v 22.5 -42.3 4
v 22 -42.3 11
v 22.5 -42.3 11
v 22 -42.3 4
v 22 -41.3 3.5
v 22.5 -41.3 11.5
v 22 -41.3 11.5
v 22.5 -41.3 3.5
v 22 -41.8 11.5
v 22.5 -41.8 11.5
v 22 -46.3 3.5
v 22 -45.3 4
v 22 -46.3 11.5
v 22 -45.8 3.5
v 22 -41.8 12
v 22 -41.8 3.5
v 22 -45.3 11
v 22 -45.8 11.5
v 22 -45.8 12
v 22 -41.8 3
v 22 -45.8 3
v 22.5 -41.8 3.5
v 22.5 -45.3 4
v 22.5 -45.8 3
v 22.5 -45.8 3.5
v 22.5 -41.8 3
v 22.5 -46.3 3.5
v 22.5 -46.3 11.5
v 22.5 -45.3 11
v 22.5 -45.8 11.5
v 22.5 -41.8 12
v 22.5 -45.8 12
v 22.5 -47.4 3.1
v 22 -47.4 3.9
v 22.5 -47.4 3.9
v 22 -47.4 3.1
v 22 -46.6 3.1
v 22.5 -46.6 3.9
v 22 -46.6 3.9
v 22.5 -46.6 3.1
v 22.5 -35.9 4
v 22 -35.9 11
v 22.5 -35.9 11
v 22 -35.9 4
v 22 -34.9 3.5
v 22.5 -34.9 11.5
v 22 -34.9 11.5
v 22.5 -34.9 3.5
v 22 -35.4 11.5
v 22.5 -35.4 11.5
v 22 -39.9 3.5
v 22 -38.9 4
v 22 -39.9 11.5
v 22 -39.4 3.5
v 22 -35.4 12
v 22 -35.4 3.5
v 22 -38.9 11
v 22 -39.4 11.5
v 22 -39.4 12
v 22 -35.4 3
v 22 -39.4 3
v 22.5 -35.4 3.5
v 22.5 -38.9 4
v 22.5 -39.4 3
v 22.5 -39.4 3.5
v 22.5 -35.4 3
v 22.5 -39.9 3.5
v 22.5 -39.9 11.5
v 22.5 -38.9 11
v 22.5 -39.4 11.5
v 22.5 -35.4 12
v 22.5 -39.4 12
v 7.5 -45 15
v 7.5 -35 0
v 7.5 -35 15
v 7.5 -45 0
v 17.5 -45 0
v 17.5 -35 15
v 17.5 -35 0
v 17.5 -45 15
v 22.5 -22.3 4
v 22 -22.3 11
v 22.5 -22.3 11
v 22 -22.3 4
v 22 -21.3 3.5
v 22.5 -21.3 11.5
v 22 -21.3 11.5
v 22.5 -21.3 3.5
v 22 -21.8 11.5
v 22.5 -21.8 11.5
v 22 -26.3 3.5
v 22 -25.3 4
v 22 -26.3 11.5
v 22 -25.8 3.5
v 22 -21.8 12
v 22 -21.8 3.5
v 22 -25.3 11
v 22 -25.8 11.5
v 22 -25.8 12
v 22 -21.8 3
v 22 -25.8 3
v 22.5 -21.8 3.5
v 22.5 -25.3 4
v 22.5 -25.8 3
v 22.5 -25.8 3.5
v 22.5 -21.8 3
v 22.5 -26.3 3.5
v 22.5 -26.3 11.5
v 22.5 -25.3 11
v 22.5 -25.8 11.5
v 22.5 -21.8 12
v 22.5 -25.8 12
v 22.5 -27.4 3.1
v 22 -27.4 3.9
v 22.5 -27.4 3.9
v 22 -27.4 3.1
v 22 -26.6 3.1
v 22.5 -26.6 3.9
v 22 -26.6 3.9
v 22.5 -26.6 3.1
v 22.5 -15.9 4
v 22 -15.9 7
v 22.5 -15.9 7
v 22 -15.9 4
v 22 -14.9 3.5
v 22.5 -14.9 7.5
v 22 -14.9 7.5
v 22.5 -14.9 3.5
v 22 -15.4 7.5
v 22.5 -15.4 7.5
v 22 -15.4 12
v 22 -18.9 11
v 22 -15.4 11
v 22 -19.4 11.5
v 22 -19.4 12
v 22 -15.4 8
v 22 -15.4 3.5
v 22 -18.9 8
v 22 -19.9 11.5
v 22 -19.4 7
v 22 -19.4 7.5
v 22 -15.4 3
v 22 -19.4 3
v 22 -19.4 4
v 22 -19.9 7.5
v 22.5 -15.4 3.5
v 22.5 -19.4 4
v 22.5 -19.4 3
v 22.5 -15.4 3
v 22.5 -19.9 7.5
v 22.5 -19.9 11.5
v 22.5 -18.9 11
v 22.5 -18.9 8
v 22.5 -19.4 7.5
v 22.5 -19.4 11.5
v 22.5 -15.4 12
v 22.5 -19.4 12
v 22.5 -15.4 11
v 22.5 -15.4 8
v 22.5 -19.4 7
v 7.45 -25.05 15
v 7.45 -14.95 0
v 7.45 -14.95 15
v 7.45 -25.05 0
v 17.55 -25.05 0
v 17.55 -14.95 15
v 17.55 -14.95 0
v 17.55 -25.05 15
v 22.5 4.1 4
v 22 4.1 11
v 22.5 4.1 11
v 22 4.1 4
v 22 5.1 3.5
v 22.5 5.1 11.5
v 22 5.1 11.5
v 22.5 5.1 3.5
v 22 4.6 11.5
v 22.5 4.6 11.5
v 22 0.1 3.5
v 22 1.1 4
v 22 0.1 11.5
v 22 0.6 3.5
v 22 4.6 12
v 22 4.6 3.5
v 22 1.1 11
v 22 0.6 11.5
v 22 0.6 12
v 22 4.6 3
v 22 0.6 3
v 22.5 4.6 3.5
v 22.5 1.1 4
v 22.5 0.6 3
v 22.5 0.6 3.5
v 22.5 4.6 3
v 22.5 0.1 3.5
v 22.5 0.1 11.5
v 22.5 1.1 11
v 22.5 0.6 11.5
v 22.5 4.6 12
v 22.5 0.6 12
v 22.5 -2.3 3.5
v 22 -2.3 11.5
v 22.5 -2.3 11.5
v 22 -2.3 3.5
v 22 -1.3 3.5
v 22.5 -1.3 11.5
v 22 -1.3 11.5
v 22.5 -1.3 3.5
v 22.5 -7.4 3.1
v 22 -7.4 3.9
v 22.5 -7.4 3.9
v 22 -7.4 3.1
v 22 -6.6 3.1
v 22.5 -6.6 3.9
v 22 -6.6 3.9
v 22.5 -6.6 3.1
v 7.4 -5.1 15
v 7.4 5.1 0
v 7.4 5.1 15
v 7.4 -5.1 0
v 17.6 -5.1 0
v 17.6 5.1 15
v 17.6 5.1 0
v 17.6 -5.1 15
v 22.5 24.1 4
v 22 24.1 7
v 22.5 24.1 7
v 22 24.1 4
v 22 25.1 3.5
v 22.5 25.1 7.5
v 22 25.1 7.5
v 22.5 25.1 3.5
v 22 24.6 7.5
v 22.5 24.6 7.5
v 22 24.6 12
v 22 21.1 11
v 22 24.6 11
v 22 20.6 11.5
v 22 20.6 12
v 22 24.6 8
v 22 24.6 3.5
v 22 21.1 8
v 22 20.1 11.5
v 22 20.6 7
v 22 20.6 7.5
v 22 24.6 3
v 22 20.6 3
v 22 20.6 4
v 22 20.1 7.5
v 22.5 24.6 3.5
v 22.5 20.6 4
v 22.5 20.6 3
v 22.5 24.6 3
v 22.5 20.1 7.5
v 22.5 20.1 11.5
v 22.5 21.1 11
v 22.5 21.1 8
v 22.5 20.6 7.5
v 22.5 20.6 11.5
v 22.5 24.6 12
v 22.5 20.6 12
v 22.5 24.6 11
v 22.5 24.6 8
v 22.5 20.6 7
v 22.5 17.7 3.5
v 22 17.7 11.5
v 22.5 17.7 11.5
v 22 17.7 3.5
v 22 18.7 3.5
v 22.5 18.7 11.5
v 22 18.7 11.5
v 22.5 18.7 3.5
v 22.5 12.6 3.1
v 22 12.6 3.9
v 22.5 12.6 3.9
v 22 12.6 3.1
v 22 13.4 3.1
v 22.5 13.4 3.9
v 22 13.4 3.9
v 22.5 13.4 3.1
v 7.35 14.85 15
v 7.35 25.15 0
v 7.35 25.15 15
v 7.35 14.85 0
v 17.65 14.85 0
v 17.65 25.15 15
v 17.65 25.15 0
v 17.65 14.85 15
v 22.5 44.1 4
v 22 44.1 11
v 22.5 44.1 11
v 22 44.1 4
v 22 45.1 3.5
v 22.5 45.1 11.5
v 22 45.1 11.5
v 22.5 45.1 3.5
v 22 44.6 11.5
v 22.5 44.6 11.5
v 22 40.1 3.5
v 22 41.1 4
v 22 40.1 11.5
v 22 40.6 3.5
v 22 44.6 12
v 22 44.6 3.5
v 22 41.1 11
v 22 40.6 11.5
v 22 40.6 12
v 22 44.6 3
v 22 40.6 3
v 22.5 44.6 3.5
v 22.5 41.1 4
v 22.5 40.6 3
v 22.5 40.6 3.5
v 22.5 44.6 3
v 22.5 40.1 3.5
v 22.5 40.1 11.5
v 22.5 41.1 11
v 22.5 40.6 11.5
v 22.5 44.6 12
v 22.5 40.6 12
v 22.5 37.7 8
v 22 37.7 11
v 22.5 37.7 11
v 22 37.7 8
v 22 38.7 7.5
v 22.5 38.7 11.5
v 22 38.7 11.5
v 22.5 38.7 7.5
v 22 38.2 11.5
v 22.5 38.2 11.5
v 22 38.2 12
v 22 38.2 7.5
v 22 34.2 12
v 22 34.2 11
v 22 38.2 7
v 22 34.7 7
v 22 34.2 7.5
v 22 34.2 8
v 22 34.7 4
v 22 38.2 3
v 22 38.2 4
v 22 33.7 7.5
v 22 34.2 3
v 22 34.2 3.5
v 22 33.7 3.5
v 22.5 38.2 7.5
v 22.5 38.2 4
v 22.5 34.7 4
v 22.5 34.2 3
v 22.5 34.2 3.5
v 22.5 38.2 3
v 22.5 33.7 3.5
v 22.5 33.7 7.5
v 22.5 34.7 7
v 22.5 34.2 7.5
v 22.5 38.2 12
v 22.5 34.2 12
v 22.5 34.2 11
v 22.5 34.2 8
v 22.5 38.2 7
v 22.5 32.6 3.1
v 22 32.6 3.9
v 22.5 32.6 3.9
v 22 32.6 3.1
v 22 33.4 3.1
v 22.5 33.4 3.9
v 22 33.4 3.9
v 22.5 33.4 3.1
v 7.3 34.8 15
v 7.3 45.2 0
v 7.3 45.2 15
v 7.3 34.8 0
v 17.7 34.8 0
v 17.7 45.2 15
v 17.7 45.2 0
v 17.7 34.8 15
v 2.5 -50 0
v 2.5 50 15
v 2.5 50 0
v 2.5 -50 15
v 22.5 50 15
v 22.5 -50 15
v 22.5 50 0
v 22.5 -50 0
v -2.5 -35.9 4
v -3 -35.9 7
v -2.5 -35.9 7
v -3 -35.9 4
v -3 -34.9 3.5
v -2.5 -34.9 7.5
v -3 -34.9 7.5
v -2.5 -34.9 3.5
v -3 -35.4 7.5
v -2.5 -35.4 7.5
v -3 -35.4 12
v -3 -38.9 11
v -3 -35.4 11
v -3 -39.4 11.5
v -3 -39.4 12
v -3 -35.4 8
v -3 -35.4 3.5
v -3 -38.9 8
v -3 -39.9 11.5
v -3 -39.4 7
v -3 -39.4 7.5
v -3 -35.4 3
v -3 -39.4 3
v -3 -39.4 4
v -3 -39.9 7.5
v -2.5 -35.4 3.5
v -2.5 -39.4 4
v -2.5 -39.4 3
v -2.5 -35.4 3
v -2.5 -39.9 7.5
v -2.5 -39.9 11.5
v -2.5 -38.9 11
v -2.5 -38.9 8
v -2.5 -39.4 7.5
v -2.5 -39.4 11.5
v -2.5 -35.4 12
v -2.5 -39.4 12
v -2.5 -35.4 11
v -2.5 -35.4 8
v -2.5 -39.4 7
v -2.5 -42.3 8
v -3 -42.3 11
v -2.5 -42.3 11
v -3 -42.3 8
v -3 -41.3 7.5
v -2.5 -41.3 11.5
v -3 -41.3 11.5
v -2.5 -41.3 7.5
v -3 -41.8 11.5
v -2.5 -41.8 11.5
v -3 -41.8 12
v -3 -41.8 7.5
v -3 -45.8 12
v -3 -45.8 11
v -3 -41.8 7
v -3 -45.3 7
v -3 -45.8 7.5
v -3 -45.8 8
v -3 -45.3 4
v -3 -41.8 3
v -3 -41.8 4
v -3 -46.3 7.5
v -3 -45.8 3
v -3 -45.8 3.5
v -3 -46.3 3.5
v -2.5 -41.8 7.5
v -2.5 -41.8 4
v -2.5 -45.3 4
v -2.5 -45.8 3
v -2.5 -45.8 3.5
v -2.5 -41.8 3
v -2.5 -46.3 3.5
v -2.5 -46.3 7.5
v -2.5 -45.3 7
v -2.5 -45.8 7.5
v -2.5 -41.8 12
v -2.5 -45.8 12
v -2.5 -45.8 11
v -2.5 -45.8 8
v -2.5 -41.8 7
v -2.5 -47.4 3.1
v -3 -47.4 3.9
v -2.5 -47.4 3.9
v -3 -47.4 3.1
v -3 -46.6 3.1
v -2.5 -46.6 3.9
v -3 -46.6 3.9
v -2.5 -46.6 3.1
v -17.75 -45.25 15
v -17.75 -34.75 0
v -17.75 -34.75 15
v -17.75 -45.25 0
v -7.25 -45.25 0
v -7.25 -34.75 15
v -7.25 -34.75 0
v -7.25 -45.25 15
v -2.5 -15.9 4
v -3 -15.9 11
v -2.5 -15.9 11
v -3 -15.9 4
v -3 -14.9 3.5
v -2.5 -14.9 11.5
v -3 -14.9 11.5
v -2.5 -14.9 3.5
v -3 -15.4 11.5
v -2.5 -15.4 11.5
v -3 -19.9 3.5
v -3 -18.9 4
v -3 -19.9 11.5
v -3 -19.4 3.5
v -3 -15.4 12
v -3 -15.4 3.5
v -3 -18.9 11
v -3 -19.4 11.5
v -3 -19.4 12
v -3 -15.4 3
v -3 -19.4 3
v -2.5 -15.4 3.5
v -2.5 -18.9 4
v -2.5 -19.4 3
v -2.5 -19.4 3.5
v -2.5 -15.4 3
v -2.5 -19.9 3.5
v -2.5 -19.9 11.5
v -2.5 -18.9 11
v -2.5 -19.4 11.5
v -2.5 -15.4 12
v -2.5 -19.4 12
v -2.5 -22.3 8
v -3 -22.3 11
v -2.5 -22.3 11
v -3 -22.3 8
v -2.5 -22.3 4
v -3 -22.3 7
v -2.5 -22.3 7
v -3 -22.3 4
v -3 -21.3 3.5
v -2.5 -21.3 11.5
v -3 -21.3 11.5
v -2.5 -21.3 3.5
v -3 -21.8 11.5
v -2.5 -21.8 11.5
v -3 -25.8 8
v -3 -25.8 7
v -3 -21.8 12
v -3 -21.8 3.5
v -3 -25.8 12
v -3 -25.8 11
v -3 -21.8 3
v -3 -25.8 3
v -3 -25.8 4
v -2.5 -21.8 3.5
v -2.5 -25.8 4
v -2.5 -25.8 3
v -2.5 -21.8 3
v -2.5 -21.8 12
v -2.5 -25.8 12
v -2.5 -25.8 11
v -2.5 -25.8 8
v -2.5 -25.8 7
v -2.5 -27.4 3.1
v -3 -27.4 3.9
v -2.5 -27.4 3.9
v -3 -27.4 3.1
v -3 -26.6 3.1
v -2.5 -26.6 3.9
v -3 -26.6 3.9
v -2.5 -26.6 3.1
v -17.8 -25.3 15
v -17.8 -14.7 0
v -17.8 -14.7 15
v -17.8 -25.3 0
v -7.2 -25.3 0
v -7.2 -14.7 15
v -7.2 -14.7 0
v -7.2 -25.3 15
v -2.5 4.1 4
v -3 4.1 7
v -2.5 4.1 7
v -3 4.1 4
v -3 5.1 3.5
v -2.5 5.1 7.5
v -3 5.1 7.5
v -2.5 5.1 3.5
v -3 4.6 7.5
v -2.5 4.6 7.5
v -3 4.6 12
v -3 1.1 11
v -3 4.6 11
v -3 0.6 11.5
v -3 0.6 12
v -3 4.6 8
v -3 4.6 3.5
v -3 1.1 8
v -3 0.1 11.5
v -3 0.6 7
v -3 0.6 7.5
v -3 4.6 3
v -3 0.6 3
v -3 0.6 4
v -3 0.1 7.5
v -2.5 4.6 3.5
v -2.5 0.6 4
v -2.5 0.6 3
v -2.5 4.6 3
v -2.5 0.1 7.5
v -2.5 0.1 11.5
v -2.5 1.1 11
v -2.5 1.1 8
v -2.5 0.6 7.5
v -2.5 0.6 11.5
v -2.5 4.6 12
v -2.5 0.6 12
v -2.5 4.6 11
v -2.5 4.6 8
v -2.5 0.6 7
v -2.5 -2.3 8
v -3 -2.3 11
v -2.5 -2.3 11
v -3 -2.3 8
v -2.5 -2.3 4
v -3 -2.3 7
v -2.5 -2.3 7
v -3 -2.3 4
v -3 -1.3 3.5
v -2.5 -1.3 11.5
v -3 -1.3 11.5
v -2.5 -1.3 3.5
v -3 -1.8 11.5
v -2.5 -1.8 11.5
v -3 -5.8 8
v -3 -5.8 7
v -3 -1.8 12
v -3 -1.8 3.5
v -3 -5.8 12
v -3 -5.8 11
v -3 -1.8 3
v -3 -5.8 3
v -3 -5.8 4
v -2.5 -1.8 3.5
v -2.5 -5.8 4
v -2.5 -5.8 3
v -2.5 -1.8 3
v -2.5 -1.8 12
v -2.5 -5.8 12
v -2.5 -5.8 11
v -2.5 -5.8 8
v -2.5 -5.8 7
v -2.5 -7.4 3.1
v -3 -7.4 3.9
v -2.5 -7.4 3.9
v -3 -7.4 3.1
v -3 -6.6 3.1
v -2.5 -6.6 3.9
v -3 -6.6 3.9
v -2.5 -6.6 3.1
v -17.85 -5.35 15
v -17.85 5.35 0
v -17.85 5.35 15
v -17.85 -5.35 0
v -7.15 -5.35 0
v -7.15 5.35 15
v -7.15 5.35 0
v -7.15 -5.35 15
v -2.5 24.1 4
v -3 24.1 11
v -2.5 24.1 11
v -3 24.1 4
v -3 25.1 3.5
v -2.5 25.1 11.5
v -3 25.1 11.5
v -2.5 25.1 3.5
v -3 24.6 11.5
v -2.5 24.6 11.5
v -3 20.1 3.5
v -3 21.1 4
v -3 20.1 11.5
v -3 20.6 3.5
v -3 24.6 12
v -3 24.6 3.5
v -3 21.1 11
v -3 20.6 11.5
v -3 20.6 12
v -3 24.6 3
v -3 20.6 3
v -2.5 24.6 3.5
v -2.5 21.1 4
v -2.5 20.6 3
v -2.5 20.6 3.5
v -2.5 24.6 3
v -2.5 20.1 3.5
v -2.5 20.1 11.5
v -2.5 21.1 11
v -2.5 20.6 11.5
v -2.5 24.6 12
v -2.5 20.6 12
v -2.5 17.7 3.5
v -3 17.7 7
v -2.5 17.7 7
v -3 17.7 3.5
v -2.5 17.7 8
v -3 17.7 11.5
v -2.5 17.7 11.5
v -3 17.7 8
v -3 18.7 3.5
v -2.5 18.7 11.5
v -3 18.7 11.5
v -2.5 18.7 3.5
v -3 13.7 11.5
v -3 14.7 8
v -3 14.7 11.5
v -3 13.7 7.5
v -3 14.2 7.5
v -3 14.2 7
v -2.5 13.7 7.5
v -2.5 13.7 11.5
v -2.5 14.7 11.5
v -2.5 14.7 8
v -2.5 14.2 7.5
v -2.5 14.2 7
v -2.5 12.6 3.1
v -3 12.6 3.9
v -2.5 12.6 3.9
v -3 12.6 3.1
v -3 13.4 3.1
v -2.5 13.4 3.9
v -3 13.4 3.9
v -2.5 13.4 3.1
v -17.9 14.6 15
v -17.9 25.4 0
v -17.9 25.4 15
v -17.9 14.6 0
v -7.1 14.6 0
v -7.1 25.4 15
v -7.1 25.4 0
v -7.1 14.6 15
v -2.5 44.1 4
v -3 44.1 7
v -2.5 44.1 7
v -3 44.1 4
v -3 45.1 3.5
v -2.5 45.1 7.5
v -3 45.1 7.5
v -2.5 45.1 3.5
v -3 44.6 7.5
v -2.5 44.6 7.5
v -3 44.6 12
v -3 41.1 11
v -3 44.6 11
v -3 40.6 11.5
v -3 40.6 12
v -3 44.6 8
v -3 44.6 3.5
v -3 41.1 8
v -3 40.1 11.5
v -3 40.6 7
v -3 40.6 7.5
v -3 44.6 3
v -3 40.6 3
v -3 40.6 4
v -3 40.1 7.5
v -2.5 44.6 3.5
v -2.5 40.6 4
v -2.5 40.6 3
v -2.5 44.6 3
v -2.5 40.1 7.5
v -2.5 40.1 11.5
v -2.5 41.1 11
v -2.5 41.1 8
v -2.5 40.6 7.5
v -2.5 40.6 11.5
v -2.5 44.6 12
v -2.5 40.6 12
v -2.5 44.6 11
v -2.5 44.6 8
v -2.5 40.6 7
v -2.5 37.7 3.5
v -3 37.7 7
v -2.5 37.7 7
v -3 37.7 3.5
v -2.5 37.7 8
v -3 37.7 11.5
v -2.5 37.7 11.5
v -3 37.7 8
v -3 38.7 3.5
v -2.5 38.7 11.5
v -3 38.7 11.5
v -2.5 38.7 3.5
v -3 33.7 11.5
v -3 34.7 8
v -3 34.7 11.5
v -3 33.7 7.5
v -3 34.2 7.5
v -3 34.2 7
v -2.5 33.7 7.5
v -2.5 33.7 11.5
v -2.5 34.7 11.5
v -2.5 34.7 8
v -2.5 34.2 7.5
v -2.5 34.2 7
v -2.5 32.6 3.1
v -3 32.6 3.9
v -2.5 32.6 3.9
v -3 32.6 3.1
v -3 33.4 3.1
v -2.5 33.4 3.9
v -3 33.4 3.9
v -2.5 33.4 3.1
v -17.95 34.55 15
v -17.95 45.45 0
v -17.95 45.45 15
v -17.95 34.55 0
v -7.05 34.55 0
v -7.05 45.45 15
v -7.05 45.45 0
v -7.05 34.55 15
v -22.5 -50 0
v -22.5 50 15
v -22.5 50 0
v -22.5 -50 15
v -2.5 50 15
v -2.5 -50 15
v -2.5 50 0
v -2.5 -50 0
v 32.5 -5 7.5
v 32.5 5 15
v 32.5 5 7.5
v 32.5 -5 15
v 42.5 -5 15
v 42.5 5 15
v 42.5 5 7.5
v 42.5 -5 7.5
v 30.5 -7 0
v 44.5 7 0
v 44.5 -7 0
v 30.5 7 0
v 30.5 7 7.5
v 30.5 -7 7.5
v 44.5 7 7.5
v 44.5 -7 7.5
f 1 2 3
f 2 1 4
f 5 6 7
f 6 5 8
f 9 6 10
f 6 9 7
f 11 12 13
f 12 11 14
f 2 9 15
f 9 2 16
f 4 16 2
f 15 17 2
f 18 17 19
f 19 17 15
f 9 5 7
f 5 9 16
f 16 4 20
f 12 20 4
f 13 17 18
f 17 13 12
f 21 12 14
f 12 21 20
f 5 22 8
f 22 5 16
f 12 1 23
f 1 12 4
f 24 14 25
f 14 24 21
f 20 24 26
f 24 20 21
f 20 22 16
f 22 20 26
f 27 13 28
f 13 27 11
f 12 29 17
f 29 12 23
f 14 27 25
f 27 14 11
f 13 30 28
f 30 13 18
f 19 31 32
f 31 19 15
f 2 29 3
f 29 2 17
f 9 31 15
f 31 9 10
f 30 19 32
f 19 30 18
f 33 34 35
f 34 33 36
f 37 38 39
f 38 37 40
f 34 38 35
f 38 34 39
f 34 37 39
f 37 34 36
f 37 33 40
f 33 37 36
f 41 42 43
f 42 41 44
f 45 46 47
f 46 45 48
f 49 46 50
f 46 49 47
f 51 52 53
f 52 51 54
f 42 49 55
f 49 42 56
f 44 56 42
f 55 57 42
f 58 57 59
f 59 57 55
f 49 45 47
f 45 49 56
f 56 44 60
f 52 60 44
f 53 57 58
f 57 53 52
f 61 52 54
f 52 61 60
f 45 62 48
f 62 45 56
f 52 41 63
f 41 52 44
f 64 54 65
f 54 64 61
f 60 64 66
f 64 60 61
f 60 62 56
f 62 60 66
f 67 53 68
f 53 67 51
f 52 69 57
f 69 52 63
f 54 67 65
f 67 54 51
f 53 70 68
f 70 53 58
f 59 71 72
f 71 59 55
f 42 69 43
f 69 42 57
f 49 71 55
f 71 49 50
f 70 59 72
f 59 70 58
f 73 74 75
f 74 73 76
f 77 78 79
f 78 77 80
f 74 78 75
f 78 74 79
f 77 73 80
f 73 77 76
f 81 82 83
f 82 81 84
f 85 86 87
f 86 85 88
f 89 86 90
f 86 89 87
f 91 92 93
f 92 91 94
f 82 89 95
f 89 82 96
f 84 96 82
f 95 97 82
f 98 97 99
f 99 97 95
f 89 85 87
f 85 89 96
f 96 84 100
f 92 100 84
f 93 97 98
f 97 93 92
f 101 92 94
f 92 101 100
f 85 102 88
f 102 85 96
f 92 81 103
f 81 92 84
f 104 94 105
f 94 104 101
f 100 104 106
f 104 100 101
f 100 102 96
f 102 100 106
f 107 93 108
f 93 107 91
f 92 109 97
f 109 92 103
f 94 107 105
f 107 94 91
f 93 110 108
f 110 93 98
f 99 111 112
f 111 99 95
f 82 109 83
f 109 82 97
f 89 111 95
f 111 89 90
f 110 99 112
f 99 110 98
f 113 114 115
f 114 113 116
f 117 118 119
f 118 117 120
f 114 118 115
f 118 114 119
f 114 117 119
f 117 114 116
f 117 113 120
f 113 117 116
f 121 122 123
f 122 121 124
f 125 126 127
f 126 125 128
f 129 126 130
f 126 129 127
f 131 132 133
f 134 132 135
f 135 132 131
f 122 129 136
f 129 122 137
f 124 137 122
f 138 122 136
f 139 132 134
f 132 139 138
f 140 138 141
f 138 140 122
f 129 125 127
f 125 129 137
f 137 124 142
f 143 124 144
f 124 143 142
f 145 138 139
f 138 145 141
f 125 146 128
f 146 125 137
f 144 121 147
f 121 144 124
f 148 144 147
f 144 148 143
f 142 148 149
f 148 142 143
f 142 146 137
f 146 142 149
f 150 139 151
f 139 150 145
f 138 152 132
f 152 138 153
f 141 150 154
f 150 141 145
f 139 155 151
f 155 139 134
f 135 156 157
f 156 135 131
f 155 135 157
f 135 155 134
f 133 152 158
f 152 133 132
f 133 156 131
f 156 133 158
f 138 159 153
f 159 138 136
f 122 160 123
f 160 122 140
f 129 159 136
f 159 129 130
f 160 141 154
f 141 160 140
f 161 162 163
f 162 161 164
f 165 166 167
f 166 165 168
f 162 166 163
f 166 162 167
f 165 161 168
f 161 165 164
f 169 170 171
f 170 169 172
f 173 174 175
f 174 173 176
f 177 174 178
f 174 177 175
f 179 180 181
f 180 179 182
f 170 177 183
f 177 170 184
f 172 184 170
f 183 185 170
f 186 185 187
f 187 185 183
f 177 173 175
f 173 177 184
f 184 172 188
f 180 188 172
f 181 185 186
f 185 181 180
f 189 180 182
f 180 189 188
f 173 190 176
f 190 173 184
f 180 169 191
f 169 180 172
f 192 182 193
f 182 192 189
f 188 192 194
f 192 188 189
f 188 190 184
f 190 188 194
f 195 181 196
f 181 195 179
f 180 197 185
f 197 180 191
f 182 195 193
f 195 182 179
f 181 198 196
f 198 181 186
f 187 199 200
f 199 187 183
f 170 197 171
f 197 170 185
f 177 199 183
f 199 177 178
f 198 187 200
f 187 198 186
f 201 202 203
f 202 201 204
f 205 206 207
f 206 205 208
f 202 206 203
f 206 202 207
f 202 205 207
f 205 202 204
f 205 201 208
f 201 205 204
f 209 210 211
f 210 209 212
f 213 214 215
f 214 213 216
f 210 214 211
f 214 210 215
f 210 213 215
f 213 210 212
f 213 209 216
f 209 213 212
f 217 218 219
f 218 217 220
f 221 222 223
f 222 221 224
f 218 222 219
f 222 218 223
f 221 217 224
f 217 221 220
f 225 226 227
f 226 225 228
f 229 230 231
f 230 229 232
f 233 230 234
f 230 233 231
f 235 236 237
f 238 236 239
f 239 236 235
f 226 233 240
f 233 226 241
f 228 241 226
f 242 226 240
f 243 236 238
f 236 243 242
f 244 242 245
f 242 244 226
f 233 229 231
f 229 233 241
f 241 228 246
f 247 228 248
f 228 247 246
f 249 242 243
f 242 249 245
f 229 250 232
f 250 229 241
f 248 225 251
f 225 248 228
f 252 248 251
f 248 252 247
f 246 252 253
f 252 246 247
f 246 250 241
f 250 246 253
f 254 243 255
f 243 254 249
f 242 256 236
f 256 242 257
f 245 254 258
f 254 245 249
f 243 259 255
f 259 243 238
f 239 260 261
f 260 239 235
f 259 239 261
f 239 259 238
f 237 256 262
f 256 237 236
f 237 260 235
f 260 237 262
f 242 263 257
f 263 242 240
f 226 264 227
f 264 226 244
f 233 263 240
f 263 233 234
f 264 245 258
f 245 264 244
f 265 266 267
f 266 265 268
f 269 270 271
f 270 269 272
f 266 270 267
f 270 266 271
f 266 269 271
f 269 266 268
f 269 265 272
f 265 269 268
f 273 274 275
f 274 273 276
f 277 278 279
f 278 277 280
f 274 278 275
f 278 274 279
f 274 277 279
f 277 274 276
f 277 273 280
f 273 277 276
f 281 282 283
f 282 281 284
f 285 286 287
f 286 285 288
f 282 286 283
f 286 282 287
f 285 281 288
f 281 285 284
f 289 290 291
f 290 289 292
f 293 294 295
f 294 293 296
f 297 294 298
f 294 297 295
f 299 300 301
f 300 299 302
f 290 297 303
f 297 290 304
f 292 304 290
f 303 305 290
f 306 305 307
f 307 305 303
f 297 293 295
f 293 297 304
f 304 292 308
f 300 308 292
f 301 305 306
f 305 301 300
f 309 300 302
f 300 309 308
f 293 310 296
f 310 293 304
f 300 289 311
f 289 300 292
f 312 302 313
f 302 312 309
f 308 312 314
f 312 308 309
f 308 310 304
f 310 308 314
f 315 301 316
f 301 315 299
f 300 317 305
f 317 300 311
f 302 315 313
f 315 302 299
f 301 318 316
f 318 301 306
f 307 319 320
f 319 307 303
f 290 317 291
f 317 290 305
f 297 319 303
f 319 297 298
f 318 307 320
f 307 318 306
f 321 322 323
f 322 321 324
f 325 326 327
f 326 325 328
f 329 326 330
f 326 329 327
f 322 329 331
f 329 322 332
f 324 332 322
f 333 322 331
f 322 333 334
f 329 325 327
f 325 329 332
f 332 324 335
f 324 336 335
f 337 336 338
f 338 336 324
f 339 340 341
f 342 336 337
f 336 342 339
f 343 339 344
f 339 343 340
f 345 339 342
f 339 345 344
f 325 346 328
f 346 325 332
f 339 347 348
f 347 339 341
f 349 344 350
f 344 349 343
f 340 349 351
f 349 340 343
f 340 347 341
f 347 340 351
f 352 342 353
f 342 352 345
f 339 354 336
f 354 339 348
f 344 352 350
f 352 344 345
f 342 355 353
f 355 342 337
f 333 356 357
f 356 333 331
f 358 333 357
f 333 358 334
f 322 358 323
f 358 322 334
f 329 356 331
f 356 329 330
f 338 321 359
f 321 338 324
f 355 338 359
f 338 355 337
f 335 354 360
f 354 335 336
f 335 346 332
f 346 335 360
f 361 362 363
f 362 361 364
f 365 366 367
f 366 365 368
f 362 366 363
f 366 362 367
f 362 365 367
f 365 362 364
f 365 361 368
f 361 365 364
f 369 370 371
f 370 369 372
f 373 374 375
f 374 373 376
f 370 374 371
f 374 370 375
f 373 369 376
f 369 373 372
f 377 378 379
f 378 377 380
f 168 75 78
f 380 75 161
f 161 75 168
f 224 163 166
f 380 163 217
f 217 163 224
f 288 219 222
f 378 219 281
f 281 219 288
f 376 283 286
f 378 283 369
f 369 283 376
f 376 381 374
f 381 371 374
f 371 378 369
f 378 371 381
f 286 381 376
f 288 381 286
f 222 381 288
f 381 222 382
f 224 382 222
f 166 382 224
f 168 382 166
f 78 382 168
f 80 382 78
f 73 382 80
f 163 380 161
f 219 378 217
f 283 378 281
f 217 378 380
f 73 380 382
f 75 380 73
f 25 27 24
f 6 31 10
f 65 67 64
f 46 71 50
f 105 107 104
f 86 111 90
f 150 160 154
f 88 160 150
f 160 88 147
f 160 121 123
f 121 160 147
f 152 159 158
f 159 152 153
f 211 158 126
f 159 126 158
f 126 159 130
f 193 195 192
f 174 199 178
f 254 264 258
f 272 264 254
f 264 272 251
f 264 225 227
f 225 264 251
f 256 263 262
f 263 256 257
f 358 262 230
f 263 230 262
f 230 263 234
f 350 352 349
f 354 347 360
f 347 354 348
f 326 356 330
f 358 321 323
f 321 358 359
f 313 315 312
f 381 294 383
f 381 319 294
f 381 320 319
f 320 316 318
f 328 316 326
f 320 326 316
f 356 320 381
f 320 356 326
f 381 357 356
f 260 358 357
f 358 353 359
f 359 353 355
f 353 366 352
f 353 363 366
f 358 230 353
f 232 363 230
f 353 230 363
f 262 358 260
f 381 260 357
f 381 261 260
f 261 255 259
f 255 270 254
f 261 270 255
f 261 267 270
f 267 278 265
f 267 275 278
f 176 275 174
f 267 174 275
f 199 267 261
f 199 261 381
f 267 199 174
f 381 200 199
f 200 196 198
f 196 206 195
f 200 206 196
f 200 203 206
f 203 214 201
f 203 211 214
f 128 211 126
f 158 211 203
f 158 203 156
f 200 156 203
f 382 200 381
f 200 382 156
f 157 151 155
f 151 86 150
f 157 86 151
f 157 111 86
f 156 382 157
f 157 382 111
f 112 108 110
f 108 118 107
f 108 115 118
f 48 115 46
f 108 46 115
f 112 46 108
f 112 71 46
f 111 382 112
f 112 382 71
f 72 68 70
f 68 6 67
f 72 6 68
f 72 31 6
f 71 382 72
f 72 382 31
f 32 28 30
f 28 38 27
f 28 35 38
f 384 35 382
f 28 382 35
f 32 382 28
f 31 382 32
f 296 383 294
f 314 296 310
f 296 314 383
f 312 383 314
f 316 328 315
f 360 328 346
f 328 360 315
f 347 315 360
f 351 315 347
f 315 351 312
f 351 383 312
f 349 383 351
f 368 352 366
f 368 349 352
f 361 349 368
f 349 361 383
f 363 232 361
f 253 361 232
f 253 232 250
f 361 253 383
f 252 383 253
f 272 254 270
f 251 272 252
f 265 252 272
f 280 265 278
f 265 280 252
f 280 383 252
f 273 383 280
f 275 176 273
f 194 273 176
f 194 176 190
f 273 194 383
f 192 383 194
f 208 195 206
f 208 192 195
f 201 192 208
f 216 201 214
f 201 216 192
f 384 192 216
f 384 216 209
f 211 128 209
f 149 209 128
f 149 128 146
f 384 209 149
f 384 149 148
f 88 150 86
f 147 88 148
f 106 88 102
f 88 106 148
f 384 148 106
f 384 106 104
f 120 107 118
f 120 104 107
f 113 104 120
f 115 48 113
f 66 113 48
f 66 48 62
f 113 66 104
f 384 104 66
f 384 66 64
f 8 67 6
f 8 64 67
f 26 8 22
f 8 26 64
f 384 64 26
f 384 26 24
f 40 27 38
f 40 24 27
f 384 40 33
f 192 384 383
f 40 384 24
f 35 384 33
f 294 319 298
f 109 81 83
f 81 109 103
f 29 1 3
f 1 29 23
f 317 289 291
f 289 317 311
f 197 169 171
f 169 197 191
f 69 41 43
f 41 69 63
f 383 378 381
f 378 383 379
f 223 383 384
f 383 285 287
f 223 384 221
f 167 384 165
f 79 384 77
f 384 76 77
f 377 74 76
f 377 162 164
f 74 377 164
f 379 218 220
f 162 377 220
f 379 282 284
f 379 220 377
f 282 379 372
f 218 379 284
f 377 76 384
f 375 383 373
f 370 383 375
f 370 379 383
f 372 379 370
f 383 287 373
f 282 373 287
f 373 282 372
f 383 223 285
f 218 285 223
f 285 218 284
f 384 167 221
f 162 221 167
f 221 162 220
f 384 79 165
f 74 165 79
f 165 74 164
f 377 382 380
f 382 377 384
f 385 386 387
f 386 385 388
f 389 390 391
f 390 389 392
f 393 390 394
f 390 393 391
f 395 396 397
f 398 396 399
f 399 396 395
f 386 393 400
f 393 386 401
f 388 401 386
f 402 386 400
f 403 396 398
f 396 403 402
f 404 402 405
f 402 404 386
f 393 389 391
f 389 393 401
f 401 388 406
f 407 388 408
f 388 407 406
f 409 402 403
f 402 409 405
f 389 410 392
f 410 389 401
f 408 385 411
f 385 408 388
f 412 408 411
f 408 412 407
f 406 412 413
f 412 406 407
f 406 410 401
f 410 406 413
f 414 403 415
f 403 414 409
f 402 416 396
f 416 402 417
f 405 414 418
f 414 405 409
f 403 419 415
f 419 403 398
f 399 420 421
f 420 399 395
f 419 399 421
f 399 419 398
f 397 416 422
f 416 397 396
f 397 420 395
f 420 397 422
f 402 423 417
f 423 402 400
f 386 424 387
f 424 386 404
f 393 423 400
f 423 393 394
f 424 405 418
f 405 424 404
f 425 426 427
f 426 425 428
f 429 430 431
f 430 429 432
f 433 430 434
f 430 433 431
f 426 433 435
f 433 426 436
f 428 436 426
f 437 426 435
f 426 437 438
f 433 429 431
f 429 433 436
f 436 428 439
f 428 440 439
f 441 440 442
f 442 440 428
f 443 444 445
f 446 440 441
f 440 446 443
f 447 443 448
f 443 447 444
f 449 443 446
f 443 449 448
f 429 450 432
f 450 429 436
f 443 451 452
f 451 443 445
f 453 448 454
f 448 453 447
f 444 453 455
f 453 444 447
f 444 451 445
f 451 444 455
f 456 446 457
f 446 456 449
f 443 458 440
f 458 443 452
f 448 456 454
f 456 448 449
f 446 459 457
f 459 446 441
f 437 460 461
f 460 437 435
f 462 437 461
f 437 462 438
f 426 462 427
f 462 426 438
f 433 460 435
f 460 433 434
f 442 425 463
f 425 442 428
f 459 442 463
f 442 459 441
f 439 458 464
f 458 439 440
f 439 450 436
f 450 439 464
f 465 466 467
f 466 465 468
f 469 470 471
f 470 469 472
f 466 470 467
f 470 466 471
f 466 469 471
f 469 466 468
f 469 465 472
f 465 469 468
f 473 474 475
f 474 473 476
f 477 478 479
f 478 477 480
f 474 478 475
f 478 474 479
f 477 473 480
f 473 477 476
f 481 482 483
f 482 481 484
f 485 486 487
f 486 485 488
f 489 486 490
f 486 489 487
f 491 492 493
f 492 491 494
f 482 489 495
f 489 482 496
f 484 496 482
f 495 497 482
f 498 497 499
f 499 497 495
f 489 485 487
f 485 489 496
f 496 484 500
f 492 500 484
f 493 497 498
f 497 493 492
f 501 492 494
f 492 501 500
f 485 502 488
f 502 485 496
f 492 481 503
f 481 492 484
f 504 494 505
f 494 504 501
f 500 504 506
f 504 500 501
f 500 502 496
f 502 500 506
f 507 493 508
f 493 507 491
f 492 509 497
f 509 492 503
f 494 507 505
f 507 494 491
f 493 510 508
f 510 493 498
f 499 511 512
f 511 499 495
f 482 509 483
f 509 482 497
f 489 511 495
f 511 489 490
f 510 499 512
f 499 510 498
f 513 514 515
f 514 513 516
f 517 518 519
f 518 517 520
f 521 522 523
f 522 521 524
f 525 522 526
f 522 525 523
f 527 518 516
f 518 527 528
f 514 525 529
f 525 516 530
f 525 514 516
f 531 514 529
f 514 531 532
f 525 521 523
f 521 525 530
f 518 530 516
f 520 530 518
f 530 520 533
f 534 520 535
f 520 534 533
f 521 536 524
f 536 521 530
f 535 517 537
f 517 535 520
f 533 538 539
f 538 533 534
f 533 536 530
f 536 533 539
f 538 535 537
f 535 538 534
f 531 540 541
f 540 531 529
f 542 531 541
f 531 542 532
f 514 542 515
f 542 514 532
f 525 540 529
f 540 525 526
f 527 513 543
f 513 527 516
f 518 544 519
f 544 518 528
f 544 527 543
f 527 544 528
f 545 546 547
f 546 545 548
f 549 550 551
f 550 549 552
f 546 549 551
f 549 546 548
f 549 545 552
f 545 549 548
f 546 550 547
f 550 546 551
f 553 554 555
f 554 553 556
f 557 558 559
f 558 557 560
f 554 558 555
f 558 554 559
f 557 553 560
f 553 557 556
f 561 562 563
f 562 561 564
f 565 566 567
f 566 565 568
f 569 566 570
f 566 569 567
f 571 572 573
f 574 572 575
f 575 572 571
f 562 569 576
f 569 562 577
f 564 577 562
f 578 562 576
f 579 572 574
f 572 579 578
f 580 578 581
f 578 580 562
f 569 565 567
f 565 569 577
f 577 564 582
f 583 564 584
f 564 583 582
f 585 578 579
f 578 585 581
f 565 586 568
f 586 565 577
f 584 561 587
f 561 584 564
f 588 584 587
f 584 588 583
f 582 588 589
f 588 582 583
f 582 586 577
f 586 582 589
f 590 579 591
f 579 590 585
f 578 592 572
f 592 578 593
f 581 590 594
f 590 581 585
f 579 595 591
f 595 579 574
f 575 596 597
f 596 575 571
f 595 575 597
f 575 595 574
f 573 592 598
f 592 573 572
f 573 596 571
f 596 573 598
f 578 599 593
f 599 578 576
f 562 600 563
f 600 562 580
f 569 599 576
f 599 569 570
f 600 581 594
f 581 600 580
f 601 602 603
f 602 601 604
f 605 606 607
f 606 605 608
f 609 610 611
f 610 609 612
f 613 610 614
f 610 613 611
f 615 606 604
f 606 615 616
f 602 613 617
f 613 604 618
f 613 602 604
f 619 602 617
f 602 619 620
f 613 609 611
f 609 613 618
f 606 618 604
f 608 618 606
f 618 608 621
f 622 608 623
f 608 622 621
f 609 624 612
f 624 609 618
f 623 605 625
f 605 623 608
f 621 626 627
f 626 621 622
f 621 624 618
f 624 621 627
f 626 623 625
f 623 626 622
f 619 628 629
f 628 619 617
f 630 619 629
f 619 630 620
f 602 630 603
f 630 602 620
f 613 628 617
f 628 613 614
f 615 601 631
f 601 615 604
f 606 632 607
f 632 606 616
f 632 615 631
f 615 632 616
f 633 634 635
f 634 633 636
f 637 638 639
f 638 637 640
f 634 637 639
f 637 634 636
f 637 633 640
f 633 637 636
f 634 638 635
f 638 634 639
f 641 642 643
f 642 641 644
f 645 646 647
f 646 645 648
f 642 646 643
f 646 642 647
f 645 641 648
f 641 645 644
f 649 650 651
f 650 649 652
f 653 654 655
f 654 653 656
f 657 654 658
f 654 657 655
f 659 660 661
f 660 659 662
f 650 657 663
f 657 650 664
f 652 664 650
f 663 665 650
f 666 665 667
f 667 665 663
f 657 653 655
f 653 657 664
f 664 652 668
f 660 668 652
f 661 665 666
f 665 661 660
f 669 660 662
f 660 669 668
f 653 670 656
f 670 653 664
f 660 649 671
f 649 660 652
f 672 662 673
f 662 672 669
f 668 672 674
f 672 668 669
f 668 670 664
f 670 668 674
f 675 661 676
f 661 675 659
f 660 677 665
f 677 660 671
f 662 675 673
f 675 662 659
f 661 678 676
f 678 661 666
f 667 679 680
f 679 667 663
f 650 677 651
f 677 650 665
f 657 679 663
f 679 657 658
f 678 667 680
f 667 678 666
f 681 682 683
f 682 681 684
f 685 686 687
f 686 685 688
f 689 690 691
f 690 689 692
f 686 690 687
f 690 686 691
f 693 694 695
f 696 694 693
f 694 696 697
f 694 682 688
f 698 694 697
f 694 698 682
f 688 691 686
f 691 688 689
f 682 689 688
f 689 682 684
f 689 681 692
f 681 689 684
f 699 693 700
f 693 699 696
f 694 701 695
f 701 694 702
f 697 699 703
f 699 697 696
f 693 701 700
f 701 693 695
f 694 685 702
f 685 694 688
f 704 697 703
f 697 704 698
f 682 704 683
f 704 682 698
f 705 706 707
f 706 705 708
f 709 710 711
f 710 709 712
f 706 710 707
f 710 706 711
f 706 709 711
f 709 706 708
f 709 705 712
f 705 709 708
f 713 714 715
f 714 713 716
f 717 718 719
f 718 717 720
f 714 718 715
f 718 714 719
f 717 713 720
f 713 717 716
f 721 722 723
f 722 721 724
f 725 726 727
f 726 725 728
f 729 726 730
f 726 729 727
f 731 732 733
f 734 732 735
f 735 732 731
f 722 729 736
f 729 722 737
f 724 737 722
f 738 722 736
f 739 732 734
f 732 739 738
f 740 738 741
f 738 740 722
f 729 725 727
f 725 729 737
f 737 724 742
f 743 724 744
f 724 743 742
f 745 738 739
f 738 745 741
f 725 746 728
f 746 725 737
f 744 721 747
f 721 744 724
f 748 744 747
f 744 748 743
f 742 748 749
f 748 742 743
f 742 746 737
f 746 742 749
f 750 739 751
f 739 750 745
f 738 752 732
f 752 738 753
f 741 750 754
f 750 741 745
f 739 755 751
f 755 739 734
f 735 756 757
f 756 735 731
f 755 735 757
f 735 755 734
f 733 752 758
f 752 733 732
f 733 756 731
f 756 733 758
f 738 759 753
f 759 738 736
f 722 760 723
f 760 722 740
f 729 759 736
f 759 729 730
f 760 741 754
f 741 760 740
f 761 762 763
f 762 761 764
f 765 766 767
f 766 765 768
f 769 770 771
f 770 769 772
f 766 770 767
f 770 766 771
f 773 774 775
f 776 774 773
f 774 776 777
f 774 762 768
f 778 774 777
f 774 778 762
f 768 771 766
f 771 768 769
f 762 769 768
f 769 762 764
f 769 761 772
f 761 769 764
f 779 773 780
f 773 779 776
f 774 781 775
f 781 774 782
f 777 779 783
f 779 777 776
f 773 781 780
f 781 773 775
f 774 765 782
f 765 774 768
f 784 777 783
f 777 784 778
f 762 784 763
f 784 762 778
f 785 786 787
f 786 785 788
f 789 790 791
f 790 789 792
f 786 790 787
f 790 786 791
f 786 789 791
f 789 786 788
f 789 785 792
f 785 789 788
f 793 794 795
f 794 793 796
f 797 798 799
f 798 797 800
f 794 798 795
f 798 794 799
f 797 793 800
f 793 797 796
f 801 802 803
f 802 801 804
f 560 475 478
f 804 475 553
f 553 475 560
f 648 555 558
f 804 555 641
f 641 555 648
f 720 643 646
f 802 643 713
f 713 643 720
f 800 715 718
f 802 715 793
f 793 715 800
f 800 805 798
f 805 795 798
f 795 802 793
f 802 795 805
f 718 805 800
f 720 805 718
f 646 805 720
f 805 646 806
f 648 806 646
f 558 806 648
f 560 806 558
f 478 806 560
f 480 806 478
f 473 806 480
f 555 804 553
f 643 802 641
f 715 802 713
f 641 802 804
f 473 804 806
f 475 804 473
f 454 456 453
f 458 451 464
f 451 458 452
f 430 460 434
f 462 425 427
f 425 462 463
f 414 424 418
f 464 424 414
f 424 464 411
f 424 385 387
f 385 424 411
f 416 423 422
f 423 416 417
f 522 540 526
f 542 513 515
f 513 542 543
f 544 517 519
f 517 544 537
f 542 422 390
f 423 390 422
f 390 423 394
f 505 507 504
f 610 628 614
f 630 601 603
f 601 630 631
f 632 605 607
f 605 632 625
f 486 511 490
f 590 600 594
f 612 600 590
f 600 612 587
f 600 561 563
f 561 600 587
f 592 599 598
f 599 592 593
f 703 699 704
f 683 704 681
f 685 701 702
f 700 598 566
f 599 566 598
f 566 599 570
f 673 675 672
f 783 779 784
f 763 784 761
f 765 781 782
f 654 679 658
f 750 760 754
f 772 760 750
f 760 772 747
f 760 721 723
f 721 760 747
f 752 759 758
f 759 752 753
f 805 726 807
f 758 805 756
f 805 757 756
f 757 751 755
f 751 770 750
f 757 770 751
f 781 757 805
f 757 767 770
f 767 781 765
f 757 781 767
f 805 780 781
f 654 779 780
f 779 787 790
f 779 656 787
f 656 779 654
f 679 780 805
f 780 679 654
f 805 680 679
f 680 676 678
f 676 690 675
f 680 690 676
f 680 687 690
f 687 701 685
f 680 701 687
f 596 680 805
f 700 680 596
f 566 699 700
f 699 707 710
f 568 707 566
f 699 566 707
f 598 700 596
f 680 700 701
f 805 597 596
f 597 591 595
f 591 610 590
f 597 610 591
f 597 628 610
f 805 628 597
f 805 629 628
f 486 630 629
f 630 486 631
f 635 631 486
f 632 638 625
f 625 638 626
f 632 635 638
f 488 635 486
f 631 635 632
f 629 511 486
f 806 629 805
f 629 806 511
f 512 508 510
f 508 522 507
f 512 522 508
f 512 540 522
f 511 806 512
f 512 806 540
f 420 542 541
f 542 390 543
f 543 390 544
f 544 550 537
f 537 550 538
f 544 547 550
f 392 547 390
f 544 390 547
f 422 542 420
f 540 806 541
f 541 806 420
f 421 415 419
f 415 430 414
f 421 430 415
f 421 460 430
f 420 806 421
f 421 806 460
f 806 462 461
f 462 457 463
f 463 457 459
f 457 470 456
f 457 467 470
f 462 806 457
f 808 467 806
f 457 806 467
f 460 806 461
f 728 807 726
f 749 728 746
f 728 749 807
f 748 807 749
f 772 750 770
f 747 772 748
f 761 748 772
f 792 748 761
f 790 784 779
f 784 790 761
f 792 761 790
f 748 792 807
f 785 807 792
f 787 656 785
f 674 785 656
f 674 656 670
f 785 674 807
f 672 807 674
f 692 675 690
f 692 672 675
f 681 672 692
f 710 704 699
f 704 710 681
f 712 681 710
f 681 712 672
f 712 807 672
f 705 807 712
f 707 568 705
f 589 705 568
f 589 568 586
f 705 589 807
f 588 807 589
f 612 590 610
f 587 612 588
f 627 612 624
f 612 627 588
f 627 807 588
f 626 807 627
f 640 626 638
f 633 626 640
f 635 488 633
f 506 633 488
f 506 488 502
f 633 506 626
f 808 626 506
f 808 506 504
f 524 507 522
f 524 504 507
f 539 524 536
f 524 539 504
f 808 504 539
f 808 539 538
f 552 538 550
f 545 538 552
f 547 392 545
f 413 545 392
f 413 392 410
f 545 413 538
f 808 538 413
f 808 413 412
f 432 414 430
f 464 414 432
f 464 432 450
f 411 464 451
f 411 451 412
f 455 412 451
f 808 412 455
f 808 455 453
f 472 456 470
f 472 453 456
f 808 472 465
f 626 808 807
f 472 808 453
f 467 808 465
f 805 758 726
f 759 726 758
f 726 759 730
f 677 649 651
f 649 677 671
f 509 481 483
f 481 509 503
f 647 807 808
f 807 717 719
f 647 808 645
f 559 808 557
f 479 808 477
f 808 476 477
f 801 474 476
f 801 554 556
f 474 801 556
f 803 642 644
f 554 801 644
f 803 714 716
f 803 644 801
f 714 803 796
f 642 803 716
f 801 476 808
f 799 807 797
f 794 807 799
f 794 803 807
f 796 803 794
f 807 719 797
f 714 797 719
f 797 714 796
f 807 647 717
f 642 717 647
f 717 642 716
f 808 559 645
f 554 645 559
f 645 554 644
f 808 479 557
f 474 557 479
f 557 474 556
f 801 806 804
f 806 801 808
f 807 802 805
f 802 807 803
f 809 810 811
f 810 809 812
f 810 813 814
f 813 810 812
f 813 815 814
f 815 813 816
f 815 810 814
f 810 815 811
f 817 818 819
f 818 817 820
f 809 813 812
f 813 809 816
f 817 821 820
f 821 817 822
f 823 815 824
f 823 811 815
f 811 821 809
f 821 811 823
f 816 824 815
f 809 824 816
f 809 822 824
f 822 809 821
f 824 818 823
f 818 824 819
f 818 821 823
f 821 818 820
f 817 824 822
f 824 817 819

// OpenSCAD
use <GDMUtils.scad>



module digit_seven_segment(digit=0, size=10, h=1)
{
	segs = [
		[1, 1, 1, 1, 1, 0, 0, 1, 1, 1],
		[1, 1, 0, 1, 1, 1, 1, 1, 1, 1],
		[1, 0, 1, 1, 0, 1, 1, 0, 1, 1],
		[1, 0, 1, 0, 0, 0, 1, 0, 1, 0],
		[1, 0, 0, 0, 1, 1, 1, 0, 1, 1],
		[1, 0, 1, 1, 0, 1, 1, 1, 1, 1],
		[0, 0, 1, 1, 1, 1, 1, 0, 1, 1]
	];
	rots = [0, 0, 90, 0, 0, 90, 90];
	offs = [[0.5, 0.5], [0.5, -0.5], [0.0, -1.0], [-0.5, -0.5], [-0.5, 0.5], [0.0, 1.0], [0.0, 0.0]];
	for (i = [0:6]) {
		if (segs[i][digit] != 0) {
			scale([size/2, size/2, h]) {
				translate([offs[i][0], offs[i][1], 0]) {
					rotate([0, 0, rots[i]]) {
						cube(size=[0.25, 1.0, 1.0], center=true);
					}
				}
			}
		}
	}
}



module float_seven_segment(val=0.0, decim=2, size=10, h=1, suppress=false)
{
	mag = max(floor(log(abs(val))), suppress?-1:0);
	if (val < 0.0) {
		translate([-0.8*size*(mag+1.5), 0, 0]) {
			cube(size=[size/2, size*0.1, h], center=true);
		}
	}
	for (p = [mag:-1:-decim]) {
		translate([-0.8*size*(p+0.5), 0, 0]) {
			assign(d = floor(abs(val)/pow(10, p)+0.000001) % 10) {
				if (p == -1) {
					translate([-0.8*size/2, -size/2, 0])
						cube(size=[size*0.1, size*0.1, h], center=true);
				}
				digit_seven_segment(digit=d, size=size, h=h);
			}
		}
	}
}




module slop_calibrator_parts() { // make me
	rows = 5;
	cols = 2;
	r = 5;
	h = 15;
	step = 0.05;
	spacing = r*2+10;
	for (col = [0:cols-1]) {
		translate([-col*spacing*1.25+(cols-1)*spacing*1.25/2, 0, h/2]) {
			difference() {
				cube(size=[spacing, rows*spacing, h], center=true);
				for (row = [0:rows-1]) {
					assign(slop = (step*rows*col)+step*row) {
						translate([0, spacing*row-(rows-1)*spacing/2, 0]) {
							cube(size=[(r+slop)*2, (r+slop)*2, h+1], center=true);
							translate([spacing/2, -7, 0]) {
								zrot(90) xrot(90) float_seven_segment(val=slop, decim=2, size=8, h=1, suppress=true);
							}
						}
					}
				}
			}
		}
	}
	translate([(cols+1)*1.25*spacing/2, 0, h/2]) {
		cube(size=[r*2, r*2, h], center=true);
		translate([0,0,-h/4])
			cube(size=[(r+2)*2, (r+2)*2, h/2], center=true);
	}
}



slop_calibrator_parts();



// vim: noexpandtab tabstop=4 shiftwidth=4 softtabstop=4 nowrap
